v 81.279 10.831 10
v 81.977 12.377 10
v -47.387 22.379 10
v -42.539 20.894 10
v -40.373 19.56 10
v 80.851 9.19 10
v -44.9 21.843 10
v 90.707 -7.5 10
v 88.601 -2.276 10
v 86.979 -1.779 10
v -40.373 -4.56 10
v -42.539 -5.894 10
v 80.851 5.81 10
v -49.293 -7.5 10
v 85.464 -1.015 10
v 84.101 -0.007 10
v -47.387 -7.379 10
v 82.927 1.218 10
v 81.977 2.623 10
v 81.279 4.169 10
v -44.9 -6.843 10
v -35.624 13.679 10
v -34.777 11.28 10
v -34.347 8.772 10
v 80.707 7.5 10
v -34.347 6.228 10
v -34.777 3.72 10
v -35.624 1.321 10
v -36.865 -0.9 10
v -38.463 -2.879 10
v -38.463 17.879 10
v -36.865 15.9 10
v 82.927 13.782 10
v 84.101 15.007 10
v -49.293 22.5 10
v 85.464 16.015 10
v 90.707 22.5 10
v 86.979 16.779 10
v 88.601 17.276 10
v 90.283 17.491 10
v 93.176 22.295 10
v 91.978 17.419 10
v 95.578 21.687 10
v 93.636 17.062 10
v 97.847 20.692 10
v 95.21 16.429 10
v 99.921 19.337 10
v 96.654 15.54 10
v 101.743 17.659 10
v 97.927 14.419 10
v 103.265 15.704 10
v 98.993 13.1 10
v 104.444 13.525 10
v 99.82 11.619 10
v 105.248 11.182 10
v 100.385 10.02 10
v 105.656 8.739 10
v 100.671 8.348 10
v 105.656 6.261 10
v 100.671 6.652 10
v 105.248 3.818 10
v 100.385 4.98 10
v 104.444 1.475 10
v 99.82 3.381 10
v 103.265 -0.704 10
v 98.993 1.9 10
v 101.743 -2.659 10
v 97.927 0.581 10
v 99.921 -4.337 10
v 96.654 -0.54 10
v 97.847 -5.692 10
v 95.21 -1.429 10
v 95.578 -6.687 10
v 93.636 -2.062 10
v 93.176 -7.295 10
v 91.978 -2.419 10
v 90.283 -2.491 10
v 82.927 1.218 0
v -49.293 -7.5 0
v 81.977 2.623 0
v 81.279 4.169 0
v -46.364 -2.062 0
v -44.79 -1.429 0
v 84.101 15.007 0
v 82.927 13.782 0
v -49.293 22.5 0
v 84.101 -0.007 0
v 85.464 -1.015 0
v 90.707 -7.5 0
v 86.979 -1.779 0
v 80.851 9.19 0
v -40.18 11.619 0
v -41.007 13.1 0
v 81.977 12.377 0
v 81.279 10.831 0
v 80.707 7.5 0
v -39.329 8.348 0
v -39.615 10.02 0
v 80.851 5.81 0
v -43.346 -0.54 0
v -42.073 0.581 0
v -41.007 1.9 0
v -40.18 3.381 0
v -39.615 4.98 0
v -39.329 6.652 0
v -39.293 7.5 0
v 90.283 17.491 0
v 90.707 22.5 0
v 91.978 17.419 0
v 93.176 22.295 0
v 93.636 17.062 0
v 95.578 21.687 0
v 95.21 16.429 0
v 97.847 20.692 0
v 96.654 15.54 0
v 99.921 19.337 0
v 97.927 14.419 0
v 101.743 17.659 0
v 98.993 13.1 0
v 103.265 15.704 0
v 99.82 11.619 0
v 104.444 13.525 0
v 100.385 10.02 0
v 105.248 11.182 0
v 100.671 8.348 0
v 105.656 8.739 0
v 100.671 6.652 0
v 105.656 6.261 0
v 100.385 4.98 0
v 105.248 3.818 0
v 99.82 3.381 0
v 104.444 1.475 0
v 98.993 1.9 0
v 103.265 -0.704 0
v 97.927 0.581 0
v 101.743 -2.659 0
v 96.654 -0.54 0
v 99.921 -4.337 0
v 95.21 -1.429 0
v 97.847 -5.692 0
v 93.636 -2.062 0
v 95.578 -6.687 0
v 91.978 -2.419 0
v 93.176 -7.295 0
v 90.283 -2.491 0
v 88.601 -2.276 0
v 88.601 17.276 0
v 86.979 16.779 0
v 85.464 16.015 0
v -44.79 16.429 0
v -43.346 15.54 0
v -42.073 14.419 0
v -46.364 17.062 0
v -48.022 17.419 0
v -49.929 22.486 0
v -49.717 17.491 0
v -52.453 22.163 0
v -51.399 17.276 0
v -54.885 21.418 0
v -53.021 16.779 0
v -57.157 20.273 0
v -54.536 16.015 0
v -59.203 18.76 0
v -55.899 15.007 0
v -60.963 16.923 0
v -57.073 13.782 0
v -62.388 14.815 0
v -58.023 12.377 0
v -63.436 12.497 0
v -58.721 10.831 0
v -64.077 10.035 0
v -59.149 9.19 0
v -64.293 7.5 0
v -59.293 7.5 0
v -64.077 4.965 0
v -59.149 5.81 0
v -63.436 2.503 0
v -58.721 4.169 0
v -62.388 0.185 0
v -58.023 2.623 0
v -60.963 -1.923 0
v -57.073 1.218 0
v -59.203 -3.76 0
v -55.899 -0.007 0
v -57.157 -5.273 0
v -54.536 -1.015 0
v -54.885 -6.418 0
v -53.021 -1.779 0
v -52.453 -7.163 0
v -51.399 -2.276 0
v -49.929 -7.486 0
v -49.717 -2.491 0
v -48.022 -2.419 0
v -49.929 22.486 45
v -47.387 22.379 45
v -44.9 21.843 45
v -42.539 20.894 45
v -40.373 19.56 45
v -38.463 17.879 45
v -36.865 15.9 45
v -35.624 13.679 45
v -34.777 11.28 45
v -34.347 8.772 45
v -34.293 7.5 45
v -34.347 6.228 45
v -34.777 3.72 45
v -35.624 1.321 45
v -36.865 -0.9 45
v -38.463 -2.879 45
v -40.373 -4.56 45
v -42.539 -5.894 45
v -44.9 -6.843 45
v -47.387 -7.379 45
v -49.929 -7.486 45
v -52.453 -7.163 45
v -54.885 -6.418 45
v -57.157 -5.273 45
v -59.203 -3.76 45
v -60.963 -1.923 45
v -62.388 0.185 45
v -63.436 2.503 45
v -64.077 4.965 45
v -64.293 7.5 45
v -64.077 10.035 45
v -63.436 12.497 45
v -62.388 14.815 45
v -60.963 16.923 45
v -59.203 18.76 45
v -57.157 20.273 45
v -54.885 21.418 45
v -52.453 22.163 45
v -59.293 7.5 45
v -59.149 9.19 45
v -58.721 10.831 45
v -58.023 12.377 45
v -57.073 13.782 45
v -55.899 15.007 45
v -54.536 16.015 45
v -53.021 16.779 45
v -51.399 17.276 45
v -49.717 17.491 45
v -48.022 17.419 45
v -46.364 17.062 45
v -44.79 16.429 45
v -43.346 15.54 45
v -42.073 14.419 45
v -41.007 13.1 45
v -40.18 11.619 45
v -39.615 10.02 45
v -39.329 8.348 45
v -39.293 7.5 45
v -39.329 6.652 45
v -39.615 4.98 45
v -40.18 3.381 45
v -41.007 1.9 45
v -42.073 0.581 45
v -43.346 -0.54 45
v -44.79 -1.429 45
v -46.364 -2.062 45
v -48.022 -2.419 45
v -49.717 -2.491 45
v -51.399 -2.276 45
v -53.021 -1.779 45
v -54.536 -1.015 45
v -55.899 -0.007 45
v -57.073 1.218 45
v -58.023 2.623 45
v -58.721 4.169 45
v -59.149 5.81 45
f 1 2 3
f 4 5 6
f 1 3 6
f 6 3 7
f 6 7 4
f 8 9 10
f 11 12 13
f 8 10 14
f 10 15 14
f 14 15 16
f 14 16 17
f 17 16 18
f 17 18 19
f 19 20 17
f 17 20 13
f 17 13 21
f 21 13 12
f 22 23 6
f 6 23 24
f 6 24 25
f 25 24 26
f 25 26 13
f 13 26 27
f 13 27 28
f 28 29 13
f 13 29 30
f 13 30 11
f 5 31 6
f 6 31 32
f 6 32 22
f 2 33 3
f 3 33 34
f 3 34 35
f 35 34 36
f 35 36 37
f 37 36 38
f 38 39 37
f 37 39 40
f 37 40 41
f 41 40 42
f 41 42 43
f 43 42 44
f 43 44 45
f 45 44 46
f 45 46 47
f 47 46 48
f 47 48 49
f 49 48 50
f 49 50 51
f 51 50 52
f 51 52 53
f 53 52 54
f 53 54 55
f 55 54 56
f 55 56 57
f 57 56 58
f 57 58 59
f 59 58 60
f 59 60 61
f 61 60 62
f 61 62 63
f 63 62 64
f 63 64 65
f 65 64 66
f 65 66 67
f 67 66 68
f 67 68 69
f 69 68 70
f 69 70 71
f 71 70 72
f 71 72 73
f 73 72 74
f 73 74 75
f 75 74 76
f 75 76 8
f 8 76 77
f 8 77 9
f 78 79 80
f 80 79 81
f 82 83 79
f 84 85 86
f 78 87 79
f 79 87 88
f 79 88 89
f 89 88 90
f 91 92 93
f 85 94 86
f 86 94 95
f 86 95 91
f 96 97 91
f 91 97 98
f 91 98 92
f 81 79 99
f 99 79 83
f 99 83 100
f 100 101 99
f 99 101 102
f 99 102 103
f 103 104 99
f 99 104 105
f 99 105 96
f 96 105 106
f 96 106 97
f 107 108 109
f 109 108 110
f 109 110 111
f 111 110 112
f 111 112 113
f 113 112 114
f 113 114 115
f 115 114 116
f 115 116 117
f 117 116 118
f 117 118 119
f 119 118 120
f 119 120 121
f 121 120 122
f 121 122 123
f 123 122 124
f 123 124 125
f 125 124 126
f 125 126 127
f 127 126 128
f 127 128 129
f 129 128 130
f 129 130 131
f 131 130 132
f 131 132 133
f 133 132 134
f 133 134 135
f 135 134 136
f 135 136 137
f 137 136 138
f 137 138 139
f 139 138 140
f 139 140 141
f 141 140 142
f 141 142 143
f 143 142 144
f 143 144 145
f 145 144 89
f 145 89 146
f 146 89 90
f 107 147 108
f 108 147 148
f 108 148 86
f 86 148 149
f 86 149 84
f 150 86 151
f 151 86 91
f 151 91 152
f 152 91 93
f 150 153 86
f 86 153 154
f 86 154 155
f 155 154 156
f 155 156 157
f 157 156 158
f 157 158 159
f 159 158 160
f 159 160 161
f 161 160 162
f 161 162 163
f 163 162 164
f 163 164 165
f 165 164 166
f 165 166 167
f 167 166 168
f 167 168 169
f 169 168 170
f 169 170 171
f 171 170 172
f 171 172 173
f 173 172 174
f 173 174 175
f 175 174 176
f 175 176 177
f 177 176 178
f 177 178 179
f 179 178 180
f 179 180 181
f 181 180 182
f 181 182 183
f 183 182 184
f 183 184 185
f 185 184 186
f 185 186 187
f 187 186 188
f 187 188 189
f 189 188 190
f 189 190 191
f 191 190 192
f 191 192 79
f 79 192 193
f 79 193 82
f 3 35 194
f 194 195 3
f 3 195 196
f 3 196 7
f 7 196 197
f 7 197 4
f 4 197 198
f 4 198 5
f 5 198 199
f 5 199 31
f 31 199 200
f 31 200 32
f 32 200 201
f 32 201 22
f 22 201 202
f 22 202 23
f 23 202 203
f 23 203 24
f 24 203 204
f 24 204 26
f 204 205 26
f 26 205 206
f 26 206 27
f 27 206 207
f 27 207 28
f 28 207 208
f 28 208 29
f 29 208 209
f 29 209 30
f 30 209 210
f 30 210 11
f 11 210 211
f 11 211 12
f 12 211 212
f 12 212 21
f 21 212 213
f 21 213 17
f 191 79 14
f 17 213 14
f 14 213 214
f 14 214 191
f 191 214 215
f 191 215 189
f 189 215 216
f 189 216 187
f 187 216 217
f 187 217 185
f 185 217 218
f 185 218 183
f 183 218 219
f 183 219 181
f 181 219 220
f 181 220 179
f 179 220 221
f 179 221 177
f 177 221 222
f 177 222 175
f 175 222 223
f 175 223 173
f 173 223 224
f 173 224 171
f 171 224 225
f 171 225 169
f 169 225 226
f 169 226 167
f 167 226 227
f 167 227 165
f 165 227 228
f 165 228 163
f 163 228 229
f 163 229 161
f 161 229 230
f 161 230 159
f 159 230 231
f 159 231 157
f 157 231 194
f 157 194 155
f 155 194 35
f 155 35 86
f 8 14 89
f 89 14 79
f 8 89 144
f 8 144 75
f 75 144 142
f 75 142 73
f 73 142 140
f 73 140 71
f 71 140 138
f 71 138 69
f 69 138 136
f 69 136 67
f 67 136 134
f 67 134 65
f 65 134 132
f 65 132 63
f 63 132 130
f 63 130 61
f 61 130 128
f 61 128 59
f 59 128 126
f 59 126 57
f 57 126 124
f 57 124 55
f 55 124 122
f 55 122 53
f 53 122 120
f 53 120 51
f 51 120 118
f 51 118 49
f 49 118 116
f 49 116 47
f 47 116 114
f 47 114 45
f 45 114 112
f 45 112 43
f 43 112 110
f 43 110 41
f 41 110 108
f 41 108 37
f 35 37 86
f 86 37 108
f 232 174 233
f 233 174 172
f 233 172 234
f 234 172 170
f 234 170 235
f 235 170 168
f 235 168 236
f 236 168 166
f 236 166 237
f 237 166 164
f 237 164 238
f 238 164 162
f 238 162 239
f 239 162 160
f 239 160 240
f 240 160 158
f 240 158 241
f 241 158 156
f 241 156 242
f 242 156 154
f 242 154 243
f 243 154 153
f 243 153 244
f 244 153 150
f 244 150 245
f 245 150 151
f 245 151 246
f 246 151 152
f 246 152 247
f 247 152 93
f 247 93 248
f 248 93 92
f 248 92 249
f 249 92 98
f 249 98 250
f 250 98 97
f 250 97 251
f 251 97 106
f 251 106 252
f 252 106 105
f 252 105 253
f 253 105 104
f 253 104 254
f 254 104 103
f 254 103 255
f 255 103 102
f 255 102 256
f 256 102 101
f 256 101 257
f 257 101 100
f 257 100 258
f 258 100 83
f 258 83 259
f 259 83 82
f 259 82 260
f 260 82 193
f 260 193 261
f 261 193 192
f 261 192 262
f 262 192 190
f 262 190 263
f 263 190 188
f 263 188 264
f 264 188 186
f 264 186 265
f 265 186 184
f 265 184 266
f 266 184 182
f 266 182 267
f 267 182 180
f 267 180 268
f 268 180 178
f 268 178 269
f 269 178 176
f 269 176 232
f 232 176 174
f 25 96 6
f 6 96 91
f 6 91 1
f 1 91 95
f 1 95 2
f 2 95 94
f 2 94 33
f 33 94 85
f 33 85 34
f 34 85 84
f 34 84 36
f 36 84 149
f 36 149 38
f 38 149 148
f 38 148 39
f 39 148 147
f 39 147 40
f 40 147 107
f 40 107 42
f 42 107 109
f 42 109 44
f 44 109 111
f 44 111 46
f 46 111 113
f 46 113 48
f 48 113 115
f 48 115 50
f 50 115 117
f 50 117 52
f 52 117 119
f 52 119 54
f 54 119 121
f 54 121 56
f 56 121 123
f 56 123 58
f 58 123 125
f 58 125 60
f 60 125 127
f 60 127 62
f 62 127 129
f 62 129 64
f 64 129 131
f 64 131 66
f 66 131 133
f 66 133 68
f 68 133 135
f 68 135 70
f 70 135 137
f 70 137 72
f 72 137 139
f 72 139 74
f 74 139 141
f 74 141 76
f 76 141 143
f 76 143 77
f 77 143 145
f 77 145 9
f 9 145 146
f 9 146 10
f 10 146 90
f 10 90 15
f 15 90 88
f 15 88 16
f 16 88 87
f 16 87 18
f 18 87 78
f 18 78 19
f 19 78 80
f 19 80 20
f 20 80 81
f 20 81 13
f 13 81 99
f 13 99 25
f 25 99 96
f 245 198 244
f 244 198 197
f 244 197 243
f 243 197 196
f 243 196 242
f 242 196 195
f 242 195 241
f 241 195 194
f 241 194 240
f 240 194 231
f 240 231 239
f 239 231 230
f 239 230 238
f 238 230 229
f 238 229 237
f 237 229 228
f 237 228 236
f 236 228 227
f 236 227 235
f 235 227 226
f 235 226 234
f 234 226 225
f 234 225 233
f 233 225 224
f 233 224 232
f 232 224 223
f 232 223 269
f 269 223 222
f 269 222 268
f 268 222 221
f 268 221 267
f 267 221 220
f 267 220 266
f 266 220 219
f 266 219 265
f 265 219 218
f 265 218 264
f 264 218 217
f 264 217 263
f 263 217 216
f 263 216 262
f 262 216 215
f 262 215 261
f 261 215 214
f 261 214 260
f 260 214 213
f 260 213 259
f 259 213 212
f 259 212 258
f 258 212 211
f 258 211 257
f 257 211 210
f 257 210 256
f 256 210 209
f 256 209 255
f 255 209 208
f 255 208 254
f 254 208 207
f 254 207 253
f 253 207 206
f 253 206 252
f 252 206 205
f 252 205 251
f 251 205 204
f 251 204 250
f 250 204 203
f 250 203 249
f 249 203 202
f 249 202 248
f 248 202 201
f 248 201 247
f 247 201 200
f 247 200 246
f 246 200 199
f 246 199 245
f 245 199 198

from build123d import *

# Parameters (mm, degrees)
CROQUIS1_R              = 10
SALIENTE_EXTRUIR1_DEPTH = 10
CROQUIS2_R              = 15
CROQUIS2_R_2            = 10
SALIENTE_EXTRUIR2_DEPTH = 35


with BuildPart() as part:
    # Croquis1 → Saliente-Extruir1 (new body)
    with BuildSketch(Plane.XY):
        with BuildLine():
            Line((-49.292513238, 22.5), (90.707486762, 22.5))
            ThreePointArc((90.707486762, 22.5), (105.707486762, 7.5), (90.707486762, -7.5))
            Line((90.707486762, -7.5), (-49.292513238, -7.5))
            ThreePointArc((-49.292513238, -7.5), (-64.292513238, 7.5), (-49.292513238, 22.5))
        make_face()
        with Locations((-49.292513238, 7.5)):
            Circle(CROQUIS1_R, mode=Mode.SUBTRACT)
        with Locations(Location((90.707486762, 7.5, 0), (0, 0, 180))):
            Circle(CROQUIS1_R, mode=Mode.SUBTRACT)
    extrude(amount=SALIENTE_EXTRUIR1_DEPTH)

    # Croquis2 → Saliente-Extruir2 (add)
    with BuildSketch(Plane.XY.offset(10)):
        with Locations(Location((-49.292513238, 7.5, 0), (0, 0, 270))):
            Circle(CROQUIS2_R)
        with Locations((-49.292513238, 7.5)):
            Circle(CROQUIS2_R_2, mode=Mode.SUBTRACT)
    extrude(amount=SALIENTE_EXTRUIR2_DEPTH)


solid = part.part
